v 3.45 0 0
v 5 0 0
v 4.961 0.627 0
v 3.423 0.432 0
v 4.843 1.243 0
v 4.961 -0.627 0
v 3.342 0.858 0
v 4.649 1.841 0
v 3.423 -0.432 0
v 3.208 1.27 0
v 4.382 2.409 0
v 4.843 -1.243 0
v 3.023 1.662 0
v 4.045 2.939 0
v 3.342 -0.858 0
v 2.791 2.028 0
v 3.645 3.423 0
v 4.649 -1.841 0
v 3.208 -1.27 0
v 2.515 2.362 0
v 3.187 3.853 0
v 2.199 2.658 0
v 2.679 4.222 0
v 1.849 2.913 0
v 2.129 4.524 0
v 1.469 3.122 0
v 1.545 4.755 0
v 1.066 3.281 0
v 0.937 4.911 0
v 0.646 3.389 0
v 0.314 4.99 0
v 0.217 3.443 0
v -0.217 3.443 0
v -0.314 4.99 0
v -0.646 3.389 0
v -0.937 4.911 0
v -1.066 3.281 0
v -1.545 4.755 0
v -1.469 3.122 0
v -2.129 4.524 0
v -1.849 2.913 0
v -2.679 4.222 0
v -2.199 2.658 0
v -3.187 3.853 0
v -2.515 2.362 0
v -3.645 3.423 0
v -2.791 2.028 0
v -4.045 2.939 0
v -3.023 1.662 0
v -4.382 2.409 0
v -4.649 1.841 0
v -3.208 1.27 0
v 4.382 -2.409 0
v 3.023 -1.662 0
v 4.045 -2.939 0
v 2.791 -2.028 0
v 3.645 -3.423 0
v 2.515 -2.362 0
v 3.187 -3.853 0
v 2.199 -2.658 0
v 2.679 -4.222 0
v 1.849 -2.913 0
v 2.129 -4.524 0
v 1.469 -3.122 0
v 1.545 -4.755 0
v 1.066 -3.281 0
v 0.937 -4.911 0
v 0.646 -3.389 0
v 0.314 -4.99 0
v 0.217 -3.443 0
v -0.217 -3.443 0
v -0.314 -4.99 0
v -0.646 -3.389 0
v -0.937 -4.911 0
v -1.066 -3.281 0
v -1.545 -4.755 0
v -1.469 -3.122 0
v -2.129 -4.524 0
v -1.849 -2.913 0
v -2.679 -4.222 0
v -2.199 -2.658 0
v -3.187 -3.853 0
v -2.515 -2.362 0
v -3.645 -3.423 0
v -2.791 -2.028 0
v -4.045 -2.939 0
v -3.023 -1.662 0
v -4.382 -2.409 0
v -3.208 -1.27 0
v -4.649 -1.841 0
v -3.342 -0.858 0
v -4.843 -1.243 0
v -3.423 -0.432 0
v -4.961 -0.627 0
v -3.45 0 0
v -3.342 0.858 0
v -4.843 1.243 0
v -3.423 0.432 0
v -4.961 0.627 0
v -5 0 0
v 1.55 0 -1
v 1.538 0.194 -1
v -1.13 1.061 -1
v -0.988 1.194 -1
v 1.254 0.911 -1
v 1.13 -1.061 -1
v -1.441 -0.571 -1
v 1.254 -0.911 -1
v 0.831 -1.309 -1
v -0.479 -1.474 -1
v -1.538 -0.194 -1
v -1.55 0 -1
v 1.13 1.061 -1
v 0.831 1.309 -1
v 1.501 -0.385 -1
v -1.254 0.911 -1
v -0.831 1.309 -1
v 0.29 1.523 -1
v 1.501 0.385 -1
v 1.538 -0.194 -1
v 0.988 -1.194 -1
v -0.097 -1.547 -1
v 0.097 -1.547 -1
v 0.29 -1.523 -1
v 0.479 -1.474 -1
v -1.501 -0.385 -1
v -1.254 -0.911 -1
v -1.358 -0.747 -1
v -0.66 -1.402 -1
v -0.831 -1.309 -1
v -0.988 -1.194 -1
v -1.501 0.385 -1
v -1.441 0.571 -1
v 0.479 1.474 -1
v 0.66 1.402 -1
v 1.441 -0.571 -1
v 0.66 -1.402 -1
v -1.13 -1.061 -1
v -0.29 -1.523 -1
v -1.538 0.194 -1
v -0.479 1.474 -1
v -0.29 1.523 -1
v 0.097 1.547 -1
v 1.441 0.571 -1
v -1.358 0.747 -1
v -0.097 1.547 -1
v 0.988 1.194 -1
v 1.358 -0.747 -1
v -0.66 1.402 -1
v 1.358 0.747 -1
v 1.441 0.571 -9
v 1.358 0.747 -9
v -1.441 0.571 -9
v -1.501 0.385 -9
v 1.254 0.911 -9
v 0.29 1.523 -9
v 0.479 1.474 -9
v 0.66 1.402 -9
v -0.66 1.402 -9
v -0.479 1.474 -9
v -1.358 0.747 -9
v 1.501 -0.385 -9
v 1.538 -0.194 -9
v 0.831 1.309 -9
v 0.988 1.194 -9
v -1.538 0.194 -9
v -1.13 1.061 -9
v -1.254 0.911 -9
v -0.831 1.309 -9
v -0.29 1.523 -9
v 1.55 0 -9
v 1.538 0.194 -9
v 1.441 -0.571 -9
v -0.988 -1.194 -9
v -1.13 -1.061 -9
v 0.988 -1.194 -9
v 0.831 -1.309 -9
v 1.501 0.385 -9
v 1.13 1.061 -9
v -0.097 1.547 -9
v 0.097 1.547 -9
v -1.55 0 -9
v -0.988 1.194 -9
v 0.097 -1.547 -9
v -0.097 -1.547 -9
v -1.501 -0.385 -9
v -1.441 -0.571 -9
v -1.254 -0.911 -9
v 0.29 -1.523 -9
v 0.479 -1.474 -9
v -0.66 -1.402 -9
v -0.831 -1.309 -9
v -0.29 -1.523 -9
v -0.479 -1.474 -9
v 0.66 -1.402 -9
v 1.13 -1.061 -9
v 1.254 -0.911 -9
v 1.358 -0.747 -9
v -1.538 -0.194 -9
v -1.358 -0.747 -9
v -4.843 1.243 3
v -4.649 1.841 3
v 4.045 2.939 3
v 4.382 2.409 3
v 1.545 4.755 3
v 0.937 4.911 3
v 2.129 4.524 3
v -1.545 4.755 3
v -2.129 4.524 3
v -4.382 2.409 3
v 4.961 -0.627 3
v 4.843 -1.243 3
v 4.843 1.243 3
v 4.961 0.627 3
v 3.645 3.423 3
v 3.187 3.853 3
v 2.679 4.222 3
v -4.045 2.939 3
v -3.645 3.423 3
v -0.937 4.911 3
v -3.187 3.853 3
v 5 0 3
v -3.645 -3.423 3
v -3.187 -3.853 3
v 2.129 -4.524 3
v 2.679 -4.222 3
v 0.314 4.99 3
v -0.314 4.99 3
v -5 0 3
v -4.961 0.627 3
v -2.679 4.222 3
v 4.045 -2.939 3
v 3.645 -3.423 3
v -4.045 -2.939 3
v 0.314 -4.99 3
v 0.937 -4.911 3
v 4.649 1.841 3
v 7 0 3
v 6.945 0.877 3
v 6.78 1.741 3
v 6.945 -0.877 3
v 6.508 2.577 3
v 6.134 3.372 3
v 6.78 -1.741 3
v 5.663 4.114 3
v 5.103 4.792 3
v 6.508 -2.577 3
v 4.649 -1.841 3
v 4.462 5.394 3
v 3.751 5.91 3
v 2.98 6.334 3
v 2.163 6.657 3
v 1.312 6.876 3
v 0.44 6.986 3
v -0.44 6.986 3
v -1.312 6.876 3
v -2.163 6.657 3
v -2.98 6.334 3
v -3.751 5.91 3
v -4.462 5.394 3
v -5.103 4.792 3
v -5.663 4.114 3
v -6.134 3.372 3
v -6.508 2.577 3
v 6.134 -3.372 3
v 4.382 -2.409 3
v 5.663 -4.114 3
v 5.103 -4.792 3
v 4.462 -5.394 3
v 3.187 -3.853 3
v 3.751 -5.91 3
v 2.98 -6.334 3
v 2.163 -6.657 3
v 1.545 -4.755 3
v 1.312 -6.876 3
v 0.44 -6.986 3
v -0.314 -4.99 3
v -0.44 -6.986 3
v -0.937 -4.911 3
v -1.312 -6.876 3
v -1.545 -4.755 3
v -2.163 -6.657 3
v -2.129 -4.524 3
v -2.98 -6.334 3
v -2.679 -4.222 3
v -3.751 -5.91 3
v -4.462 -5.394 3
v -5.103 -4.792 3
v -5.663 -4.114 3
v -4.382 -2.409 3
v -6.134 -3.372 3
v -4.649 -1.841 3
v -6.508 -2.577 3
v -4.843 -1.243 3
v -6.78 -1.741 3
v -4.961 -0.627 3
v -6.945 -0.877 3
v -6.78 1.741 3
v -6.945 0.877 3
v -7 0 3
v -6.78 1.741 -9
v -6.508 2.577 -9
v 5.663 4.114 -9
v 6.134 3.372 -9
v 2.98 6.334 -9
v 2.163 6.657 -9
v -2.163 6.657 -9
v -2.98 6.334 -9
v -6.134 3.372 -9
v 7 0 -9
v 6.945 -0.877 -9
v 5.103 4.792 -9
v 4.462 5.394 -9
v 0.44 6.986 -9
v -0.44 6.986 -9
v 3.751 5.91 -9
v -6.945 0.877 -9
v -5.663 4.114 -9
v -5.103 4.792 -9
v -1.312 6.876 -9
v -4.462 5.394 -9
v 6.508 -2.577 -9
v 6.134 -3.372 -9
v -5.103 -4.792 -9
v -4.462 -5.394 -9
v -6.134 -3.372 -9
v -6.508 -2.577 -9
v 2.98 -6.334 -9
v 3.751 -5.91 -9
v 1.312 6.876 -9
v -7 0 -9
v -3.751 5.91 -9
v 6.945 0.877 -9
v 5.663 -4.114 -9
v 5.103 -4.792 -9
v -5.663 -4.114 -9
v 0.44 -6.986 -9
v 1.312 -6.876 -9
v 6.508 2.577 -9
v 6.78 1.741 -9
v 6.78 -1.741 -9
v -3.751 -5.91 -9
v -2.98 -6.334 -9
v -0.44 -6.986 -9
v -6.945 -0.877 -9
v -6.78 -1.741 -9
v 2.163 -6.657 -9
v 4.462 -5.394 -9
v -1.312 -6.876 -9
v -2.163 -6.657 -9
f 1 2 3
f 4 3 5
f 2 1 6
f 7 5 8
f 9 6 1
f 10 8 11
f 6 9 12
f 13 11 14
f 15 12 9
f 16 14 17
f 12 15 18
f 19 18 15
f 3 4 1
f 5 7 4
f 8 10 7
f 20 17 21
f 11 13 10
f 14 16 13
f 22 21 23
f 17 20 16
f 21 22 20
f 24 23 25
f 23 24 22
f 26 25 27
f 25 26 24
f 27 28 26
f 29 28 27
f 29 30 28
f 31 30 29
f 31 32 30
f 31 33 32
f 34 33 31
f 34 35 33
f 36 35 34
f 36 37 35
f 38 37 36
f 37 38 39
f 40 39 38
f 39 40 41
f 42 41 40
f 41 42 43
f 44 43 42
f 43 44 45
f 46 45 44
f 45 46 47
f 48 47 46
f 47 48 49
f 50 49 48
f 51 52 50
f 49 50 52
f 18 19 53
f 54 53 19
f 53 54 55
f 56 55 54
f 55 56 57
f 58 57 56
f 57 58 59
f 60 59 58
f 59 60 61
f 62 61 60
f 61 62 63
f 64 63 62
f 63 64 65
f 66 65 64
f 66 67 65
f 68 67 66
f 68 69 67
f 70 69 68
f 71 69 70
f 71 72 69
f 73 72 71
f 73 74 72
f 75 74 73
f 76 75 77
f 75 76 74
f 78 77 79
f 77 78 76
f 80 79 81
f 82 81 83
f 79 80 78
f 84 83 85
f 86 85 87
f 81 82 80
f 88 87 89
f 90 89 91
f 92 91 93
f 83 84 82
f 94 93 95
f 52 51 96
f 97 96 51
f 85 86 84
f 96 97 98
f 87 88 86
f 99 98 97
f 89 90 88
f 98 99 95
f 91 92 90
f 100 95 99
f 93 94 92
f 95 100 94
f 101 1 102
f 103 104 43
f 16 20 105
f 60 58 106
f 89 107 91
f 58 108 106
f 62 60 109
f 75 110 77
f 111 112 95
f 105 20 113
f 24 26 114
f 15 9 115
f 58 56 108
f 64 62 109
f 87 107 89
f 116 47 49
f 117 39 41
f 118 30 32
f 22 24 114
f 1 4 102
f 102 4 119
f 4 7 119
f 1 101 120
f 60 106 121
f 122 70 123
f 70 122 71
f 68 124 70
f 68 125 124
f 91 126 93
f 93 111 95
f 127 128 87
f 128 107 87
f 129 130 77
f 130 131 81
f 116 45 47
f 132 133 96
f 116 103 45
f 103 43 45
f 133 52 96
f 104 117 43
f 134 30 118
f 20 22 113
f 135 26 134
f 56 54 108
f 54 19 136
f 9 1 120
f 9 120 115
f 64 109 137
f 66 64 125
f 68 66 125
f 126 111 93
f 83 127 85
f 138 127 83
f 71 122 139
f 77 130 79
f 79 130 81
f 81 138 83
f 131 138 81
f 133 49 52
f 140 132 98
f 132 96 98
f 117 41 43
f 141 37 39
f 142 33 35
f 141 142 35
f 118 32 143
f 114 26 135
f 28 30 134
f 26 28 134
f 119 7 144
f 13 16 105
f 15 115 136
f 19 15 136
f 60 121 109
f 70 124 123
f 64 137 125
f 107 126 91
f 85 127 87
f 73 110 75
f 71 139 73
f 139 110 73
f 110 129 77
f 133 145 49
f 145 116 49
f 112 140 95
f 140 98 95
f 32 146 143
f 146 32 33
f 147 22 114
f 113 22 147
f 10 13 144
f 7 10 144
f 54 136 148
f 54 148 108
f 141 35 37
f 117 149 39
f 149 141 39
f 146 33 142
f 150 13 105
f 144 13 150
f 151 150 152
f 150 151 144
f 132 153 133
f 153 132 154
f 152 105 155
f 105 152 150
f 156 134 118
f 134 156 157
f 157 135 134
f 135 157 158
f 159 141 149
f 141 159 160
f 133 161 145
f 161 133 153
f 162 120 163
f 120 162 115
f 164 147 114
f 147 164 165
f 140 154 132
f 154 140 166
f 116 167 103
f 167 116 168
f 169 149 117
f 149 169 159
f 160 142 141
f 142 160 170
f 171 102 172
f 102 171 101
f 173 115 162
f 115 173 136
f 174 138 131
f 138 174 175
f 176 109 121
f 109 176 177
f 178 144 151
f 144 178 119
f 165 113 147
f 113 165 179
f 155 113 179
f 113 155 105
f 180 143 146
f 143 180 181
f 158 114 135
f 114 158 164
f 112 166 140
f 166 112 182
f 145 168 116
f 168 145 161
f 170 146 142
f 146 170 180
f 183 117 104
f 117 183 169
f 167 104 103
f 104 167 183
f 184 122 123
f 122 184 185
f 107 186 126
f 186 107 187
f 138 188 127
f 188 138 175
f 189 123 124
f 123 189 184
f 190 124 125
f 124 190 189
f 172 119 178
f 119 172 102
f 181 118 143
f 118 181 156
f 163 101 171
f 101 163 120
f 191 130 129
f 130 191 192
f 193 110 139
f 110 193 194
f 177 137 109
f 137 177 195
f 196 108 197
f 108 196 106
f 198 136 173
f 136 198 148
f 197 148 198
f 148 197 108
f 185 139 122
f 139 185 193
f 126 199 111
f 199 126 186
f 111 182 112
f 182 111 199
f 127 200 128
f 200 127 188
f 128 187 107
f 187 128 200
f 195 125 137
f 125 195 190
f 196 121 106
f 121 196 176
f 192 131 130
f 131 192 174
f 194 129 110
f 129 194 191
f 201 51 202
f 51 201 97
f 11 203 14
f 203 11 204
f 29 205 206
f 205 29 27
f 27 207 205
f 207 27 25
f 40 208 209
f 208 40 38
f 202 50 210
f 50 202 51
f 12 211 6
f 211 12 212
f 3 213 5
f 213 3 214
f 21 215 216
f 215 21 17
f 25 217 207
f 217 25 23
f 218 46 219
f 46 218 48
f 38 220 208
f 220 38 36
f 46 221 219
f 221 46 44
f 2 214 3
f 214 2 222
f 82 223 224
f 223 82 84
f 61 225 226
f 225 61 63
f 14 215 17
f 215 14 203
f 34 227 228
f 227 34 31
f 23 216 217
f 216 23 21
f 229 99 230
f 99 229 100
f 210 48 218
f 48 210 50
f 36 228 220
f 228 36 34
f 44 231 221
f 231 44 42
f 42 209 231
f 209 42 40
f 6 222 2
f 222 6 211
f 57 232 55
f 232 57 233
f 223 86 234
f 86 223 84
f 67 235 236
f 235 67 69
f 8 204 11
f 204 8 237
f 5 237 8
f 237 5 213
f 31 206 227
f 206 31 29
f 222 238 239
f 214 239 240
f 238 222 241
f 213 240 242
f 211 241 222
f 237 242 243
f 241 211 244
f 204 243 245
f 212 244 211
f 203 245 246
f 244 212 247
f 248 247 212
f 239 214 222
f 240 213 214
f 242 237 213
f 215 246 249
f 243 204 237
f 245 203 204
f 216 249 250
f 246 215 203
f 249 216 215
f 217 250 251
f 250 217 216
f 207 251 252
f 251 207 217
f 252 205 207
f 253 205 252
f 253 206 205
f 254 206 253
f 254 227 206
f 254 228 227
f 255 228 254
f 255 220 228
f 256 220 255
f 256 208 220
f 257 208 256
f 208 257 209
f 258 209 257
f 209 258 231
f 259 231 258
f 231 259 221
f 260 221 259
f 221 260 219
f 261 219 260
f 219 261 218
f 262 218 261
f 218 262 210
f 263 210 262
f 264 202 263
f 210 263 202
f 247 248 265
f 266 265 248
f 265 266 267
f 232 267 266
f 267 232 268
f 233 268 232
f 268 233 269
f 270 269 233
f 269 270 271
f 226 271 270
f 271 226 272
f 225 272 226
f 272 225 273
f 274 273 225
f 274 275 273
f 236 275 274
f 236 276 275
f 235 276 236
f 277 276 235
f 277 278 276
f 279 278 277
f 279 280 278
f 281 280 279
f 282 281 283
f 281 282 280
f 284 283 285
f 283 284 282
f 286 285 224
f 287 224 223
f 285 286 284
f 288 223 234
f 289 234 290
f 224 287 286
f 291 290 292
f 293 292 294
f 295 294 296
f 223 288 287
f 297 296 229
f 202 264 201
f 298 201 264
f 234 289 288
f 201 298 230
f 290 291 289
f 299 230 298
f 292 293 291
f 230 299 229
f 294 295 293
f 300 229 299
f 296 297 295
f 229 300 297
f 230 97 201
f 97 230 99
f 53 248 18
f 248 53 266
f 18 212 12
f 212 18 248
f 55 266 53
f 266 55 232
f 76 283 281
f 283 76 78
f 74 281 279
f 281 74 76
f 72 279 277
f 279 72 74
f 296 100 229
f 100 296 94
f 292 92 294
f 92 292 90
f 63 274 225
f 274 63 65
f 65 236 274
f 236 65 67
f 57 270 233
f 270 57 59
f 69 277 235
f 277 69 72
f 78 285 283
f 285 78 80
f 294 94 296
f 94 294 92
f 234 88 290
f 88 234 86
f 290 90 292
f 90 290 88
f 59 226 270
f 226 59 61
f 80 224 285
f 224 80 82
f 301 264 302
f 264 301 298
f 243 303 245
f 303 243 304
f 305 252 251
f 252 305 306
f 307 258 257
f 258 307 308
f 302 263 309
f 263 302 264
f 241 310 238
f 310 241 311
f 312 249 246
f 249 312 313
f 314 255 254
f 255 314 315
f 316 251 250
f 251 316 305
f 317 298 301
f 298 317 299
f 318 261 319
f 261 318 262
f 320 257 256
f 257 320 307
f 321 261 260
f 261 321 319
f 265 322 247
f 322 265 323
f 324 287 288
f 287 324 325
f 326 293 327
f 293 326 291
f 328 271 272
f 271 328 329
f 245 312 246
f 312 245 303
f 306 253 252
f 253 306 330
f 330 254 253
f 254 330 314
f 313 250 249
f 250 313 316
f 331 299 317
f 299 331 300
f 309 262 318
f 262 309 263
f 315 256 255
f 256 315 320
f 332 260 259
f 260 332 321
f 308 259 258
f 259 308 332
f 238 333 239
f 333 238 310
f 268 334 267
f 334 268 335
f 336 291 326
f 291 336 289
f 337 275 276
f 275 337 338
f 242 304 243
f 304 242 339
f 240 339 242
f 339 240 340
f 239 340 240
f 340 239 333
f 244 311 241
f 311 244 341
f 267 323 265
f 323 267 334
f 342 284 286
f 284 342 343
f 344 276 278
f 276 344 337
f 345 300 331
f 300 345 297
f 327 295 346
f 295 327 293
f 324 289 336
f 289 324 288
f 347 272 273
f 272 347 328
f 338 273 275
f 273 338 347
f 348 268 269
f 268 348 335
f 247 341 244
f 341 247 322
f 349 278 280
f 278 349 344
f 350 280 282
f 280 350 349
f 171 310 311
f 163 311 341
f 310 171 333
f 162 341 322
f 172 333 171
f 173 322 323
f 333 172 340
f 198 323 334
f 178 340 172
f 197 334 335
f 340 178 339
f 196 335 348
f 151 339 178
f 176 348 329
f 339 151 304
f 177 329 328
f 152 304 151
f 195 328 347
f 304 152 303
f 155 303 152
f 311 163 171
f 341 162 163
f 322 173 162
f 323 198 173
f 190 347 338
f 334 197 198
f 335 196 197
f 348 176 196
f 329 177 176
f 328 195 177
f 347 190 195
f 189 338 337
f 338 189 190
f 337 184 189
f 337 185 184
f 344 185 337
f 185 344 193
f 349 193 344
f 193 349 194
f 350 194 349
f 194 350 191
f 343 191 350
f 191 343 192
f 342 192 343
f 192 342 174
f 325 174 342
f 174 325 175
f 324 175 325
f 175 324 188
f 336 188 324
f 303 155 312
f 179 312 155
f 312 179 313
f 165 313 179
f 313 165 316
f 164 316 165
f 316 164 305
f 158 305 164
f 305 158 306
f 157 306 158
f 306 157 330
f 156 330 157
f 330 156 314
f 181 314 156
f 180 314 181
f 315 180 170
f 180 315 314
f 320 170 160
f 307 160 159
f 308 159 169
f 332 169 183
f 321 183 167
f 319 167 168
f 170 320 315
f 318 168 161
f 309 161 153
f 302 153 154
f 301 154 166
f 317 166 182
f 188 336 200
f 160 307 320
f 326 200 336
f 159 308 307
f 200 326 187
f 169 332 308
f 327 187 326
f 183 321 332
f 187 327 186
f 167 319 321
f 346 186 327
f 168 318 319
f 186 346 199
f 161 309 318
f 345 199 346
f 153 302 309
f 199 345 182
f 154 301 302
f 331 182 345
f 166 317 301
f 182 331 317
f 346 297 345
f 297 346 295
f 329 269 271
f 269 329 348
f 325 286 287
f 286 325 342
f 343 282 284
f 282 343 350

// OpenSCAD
$fn = 50;

difference() {
	union() {
		translate(v = [0, 0, -9.0]) {
			cylinder(h = 12, r = 7.0);
		}
	}
	union() {
		translate(v = [0, 0, 0]) {
			rotate(a = [0, 0, 0]) {
				difference() {
					union() {
						translate(v = [0, 0, -12.0]) {
							cylinder(h = 12, r = 1.25);
						}
						translate(v = [0, 0, -1.0]) {
							cylinder(h = 1.0, r1 = 1.55, r2 = 3.45);
						}
						translate(v = [0, 0, -12.0]) {
							cylinder(h = 12, r = 1.55);
						}
						translate(v = [0, 0, -12.0]) {
							cylinder(h = 12, r = 1.25);
						}
					}
					union();
				}
			}
		}
		#cylinder(h = 3, r = 5.0);
	}
}
